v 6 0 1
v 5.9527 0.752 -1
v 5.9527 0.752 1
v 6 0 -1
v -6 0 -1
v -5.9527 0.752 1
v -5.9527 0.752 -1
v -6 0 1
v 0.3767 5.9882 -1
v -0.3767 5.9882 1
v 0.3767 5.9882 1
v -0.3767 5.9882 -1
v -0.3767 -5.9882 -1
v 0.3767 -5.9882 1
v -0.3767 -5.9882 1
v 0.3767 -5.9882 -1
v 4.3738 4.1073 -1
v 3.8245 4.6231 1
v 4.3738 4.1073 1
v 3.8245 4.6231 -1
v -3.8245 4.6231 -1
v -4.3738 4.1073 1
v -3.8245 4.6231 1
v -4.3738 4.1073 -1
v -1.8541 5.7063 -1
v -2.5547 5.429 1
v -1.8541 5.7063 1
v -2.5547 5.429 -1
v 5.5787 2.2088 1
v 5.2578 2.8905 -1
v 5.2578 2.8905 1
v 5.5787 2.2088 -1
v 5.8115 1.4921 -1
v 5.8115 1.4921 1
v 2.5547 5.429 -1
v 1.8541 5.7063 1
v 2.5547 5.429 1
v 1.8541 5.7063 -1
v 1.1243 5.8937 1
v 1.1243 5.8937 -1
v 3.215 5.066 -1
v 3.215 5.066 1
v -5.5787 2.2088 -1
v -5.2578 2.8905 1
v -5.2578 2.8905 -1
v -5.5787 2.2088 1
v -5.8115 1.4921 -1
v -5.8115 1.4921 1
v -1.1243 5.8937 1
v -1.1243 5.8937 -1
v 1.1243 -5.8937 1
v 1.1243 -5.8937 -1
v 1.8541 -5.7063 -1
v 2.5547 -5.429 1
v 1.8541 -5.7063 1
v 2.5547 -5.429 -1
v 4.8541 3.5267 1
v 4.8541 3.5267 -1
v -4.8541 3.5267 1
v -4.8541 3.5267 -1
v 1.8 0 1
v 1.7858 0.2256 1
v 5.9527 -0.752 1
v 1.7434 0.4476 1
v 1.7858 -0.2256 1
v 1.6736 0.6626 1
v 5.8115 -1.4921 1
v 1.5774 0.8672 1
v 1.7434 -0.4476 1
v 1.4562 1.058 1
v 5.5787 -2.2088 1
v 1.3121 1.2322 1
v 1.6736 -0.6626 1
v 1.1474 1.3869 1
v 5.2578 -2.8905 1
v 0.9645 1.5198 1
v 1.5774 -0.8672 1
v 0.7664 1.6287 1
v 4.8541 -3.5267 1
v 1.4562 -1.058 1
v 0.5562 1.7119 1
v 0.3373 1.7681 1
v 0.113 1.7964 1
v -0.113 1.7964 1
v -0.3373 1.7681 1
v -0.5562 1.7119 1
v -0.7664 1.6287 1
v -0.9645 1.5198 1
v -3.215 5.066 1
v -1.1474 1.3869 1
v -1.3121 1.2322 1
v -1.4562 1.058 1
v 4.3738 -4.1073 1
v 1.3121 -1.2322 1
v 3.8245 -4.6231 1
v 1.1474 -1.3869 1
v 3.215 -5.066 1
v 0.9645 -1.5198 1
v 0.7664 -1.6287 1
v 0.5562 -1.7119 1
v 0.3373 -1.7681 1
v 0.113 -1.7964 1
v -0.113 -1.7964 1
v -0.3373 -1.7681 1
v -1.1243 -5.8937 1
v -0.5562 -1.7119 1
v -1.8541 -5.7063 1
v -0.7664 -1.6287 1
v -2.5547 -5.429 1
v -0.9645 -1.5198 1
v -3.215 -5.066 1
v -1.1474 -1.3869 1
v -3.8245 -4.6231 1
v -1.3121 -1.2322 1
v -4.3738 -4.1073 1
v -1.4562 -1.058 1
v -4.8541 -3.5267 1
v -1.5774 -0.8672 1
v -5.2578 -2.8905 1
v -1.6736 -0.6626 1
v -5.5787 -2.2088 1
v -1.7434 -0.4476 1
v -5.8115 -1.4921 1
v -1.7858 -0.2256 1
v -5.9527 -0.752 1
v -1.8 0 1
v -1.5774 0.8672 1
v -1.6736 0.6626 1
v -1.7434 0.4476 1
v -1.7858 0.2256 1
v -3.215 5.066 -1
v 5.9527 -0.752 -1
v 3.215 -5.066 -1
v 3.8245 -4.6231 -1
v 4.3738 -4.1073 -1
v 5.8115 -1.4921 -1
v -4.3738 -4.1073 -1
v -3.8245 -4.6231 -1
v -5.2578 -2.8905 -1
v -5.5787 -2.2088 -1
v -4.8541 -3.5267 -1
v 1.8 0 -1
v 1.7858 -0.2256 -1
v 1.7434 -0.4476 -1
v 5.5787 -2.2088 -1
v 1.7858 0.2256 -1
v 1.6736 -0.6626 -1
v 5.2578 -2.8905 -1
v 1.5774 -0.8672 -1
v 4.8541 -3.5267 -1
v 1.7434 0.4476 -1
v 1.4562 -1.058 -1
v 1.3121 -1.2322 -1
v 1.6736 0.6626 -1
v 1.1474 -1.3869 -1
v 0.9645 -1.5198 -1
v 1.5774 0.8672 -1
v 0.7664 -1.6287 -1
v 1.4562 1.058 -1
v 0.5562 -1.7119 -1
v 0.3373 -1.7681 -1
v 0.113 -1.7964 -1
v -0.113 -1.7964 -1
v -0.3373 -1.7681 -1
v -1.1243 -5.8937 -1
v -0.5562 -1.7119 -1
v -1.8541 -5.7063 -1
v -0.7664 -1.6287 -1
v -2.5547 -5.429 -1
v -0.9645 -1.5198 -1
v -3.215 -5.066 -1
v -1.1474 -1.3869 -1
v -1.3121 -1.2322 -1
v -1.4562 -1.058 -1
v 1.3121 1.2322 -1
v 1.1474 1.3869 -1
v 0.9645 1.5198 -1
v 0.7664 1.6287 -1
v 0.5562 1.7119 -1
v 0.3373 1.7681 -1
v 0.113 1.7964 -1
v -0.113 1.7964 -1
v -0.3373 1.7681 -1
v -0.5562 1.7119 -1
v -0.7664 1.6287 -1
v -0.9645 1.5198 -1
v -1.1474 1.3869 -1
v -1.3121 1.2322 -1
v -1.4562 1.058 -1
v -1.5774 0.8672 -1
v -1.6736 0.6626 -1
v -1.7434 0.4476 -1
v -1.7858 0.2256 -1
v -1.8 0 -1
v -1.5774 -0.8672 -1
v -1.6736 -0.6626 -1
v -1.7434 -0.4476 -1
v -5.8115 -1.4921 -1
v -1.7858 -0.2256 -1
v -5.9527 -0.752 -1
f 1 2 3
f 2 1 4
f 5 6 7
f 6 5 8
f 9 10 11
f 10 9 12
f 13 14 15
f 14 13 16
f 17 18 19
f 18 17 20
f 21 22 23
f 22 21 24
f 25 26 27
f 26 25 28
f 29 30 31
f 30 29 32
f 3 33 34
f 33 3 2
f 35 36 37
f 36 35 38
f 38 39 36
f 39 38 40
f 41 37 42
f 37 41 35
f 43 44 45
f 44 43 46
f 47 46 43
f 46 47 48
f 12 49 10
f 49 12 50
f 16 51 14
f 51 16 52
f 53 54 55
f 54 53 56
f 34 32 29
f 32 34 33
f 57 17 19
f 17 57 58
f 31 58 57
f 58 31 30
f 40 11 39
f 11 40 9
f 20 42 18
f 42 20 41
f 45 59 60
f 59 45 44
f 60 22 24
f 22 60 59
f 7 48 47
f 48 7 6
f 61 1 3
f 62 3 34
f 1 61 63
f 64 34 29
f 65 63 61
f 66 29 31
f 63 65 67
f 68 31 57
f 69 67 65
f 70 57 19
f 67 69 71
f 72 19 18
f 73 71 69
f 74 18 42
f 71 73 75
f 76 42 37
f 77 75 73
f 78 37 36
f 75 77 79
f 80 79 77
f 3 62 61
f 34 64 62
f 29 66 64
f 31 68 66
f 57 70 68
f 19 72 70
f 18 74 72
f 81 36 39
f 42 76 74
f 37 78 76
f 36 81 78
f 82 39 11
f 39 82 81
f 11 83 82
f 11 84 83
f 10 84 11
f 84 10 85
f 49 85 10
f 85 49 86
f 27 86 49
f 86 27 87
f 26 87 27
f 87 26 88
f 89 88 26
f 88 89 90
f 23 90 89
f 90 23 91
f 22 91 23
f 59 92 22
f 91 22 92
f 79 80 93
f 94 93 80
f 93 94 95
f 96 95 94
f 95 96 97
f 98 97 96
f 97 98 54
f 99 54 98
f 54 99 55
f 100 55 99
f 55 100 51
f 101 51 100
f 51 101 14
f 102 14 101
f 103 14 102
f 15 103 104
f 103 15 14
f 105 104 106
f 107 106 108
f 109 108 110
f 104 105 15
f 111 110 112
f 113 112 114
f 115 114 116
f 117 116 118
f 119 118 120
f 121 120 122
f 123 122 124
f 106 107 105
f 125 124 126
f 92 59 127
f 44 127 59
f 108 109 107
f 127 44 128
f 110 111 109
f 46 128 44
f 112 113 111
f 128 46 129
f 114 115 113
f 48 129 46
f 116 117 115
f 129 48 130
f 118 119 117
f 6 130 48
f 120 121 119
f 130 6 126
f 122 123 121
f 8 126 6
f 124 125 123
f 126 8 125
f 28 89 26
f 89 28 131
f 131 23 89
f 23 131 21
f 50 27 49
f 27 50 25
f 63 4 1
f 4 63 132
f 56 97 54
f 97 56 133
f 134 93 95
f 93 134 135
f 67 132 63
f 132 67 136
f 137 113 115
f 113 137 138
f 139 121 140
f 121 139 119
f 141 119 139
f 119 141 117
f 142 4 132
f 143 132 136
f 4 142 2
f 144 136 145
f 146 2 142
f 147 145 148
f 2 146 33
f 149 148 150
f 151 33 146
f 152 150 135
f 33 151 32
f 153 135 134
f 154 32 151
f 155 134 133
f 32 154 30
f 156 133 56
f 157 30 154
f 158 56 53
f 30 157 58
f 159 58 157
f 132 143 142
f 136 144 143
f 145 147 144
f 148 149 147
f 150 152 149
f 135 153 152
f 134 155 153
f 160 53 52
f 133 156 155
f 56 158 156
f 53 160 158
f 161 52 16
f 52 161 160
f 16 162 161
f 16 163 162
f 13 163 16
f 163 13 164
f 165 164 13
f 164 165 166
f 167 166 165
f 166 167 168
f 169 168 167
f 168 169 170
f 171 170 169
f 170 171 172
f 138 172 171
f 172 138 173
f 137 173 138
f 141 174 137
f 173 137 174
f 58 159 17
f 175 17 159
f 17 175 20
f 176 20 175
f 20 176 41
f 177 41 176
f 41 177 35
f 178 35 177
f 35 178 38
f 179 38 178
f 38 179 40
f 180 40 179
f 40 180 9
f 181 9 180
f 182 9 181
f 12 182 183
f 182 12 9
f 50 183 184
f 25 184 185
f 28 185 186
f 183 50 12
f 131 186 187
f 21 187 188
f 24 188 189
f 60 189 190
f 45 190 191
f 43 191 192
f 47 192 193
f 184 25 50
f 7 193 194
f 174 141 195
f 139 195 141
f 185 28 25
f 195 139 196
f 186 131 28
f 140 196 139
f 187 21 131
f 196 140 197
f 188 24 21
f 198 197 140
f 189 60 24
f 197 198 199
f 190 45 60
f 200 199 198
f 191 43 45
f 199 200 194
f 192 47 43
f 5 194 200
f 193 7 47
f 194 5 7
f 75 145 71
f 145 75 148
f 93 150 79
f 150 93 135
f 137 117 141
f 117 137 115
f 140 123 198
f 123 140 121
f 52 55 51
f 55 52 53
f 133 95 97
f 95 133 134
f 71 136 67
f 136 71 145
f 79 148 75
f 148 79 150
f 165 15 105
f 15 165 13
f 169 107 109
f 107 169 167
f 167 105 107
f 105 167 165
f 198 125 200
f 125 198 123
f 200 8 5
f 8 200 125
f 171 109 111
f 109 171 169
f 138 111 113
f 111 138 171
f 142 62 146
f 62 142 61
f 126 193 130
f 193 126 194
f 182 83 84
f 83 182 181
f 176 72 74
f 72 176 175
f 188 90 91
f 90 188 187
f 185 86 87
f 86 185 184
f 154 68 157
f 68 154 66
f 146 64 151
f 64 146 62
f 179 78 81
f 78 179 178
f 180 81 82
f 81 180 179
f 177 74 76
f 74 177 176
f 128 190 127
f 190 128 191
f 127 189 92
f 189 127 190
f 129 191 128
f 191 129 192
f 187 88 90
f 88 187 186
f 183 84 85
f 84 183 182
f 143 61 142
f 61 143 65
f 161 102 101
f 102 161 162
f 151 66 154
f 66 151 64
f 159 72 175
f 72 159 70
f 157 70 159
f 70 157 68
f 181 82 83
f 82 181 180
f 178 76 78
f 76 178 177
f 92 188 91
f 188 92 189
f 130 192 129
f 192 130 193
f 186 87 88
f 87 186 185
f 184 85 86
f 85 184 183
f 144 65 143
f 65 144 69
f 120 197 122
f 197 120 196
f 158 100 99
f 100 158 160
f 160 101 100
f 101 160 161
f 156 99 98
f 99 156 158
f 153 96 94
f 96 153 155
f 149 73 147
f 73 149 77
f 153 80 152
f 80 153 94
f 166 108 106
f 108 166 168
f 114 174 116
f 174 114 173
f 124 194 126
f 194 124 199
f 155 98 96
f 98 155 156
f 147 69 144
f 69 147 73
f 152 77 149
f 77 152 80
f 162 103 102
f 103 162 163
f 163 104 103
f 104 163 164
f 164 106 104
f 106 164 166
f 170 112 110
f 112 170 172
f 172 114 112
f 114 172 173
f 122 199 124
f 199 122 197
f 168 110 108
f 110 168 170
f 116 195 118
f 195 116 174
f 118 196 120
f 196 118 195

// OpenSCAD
$fn = 50;


difference() {
	union() {
		translate(v = [0, 0, -1.0000000000]) {
			cylinder(h = 2, r = 6.0000000000);
		}
	}
	union() {
		translate(v = [0, 0, -100.0000000000]) {
			cylinder(h = 200, r = 1.8000000000);
		}
	}
}
